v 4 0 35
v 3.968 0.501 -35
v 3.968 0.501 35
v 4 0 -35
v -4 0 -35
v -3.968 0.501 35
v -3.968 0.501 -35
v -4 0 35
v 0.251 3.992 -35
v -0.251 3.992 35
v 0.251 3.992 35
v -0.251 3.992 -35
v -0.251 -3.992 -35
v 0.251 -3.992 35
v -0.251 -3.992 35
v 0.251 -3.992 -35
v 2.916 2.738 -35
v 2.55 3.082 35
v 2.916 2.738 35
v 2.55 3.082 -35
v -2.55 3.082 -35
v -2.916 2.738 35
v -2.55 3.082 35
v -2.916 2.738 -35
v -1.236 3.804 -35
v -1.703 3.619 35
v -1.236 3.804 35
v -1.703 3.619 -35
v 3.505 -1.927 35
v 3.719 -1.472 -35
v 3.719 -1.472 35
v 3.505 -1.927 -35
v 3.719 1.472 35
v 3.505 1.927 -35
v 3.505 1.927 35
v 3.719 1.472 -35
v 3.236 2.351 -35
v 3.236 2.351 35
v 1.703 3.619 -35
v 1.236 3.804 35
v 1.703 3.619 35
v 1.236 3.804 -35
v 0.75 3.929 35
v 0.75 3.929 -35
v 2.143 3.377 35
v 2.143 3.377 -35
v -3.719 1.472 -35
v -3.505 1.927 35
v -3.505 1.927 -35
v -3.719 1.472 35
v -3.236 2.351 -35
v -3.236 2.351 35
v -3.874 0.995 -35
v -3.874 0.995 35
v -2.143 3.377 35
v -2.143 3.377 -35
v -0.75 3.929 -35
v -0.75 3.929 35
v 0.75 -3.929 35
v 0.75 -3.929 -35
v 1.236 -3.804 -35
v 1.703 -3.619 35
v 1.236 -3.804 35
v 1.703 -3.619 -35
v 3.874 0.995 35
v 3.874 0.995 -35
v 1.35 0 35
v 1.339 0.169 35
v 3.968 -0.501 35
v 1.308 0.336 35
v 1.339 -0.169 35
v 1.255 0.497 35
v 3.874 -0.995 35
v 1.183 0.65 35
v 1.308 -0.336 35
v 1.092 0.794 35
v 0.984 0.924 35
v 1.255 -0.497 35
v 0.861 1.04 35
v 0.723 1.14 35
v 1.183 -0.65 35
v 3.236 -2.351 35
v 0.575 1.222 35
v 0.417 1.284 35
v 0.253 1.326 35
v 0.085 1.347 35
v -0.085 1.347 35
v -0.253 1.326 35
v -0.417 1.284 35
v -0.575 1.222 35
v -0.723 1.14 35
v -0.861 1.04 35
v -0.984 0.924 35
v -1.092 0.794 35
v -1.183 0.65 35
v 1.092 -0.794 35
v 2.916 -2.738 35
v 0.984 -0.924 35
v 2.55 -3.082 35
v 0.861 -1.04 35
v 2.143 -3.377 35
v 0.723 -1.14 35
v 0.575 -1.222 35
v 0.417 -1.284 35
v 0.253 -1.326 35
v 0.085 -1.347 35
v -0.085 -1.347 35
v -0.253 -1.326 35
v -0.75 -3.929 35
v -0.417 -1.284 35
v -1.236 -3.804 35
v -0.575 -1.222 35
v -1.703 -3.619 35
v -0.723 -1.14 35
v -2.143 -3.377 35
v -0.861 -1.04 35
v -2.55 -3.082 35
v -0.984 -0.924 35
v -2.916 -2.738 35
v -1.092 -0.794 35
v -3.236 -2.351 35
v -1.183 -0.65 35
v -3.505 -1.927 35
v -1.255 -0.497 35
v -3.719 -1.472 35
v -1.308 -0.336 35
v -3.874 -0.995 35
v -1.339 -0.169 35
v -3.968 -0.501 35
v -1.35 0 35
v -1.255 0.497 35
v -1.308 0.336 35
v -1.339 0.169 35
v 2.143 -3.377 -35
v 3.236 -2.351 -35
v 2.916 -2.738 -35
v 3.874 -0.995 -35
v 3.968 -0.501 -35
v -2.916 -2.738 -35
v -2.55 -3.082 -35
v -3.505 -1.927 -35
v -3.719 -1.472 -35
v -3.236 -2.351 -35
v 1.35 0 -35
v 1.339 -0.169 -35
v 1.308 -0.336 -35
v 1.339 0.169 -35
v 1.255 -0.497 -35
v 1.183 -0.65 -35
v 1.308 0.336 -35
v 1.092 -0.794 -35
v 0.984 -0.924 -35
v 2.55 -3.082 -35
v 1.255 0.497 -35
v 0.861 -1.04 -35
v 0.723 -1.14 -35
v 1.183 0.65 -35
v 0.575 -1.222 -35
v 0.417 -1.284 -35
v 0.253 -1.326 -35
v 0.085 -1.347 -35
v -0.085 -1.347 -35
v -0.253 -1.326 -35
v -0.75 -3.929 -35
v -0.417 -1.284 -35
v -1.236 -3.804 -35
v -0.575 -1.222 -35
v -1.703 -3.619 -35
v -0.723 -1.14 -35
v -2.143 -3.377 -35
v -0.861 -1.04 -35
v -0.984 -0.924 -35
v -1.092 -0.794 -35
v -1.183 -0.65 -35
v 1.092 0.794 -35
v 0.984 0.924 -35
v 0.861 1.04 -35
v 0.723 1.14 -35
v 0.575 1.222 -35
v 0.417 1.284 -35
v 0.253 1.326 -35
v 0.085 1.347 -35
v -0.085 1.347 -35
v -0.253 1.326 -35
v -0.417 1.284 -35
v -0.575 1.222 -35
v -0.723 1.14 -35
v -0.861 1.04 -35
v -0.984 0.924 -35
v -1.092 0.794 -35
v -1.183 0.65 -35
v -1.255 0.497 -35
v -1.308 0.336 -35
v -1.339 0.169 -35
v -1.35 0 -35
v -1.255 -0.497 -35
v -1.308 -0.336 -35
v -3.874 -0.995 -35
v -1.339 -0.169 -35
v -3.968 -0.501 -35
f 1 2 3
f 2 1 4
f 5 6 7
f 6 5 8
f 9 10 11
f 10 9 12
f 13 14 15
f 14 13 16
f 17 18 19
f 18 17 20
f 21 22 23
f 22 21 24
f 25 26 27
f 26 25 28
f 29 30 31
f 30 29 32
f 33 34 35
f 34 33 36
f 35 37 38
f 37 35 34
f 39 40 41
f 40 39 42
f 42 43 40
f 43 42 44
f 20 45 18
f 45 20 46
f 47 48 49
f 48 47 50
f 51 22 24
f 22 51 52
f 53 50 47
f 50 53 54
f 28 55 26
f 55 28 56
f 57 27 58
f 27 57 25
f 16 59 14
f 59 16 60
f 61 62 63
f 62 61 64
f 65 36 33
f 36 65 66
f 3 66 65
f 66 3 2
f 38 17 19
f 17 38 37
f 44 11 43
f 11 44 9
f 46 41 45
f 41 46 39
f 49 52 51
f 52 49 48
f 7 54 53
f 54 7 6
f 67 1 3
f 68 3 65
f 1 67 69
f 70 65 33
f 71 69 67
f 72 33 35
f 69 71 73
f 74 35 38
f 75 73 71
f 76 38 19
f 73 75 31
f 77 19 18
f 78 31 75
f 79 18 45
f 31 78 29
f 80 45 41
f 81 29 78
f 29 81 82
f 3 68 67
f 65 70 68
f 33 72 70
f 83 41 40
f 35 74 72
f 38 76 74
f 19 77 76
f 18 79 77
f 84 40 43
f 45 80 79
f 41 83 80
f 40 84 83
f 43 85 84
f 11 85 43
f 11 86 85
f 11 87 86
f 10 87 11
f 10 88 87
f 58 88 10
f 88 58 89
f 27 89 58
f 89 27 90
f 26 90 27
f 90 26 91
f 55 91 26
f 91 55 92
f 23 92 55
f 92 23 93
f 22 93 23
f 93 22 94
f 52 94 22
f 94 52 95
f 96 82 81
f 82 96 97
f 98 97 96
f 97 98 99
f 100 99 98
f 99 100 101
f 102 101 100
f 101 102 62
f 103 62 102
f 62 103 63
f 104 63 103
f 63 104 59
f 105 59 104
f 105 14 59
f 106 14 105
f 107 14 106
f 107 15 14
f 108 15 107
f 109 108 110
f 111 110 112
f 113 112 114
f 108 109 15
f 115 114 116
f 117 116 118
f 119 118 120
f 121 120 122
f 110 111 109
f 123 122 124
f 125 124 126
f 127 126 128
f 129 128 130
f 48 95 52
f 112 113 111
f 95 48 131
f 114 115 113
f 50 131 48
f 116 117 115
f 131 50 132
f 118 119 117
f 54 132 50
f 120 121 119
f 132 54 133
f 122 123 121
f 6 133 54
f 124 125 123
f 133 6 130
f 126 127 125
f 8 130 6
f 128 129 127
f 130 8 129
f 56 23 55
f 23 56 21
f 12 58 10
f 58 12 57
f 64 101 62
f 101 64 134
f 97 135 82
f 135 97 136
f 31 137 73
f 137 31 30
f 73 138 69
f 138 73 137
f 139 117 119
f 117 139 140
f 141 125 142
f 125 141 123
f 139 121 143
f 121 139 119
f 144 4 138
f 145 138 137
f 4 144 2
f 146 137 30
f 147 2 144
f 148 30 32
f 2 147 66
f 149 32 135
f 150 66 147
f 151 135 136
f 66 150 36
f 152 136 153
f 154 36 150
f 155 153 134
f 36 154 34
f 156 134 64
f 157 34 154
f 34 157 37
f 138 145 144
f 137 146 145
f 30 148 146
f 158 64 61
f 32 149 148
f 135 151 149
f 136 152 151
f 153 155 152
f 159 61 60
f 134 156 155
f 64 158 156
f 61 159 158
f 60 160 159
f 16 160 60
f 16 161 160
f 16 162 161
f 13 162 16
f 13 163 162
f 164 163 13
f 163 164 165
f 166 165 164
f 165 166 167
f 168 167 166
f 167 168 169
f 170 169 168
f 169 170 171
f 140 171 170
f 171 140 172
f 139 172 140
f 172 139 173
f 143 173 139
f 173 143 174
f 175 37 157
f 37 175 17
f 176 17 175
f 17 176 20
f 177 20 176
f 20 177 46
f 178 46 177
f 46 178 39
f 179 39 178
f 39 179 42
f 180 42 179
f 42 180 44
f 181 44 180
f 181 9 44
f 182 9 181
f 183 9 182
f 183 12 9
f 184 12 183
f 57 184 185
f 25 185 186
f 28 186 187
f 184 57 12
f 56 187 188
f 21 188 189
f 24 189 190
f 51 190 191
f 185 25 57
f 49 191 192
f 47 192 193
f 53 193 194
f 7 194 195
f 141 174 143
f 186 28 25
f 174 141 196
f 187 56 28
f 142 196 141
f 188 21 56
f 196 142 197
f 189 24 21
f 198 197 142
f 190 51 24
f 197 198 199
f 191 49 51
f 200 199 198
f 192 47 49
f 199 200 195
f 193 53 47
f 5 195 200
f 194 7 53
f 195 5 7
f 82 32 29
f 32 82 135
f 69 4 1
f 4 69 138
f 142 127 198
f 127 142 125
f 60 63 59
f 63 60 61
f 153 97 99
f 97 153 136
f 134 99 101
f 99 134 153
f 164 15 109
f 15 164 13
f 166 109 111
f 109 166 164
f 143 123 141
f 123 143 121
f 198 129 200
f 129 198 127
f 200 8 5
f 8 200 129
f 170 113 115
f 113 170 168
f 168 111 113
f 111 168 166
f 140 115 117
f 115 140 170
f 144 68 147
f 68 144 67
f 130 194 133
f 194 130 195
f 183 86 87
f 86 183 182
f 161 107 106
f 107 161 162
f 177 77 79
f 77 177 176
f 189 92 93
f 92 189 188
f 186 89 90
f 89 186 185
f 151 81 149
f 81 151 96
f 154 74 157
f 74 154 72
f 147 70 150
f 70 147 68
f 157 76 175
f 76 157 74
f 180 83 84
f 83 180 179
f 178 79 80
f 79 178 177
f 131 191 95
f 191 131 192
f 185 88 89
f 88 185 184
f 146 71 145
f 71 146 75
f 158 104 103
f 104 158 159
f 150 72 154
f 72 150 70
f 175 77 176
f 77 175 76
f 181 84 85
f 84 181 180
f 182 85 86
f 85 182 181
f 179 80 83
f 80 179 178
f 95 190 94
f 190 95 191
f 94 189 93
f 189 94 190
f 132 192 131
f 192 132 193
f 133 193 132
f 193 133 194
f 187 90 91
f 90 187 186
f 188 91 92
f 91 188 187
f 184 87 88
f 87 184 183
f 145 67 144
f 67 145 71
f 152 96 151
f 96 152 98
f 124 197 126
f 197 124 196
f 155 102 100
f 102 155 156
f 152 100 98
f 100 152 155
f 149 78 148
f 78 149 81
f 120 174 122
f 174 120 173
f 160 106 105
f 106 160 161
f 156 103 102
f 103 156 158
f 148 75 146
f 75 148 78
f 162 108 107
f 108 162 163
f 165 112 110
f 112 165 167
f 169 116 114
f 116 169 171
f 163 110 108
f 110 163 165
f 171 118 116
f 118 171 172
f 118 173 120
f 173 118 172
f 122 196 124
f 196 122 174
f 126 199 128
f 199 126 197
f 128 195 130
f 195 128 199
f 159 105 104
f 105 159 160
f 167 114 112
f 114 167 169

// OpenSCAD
$fn = 50;


difference() {
	union() {
		translate(v = [0, 0, -35.0000000000]) {
			cylinder(h = 70, r = 4.0000000000);
		}
	}
	union() {
		translate(v = [0, 0, -100.0000000000]) {
			cylinder(h = 200, r = 1.3500000000);
		}
	}
}
